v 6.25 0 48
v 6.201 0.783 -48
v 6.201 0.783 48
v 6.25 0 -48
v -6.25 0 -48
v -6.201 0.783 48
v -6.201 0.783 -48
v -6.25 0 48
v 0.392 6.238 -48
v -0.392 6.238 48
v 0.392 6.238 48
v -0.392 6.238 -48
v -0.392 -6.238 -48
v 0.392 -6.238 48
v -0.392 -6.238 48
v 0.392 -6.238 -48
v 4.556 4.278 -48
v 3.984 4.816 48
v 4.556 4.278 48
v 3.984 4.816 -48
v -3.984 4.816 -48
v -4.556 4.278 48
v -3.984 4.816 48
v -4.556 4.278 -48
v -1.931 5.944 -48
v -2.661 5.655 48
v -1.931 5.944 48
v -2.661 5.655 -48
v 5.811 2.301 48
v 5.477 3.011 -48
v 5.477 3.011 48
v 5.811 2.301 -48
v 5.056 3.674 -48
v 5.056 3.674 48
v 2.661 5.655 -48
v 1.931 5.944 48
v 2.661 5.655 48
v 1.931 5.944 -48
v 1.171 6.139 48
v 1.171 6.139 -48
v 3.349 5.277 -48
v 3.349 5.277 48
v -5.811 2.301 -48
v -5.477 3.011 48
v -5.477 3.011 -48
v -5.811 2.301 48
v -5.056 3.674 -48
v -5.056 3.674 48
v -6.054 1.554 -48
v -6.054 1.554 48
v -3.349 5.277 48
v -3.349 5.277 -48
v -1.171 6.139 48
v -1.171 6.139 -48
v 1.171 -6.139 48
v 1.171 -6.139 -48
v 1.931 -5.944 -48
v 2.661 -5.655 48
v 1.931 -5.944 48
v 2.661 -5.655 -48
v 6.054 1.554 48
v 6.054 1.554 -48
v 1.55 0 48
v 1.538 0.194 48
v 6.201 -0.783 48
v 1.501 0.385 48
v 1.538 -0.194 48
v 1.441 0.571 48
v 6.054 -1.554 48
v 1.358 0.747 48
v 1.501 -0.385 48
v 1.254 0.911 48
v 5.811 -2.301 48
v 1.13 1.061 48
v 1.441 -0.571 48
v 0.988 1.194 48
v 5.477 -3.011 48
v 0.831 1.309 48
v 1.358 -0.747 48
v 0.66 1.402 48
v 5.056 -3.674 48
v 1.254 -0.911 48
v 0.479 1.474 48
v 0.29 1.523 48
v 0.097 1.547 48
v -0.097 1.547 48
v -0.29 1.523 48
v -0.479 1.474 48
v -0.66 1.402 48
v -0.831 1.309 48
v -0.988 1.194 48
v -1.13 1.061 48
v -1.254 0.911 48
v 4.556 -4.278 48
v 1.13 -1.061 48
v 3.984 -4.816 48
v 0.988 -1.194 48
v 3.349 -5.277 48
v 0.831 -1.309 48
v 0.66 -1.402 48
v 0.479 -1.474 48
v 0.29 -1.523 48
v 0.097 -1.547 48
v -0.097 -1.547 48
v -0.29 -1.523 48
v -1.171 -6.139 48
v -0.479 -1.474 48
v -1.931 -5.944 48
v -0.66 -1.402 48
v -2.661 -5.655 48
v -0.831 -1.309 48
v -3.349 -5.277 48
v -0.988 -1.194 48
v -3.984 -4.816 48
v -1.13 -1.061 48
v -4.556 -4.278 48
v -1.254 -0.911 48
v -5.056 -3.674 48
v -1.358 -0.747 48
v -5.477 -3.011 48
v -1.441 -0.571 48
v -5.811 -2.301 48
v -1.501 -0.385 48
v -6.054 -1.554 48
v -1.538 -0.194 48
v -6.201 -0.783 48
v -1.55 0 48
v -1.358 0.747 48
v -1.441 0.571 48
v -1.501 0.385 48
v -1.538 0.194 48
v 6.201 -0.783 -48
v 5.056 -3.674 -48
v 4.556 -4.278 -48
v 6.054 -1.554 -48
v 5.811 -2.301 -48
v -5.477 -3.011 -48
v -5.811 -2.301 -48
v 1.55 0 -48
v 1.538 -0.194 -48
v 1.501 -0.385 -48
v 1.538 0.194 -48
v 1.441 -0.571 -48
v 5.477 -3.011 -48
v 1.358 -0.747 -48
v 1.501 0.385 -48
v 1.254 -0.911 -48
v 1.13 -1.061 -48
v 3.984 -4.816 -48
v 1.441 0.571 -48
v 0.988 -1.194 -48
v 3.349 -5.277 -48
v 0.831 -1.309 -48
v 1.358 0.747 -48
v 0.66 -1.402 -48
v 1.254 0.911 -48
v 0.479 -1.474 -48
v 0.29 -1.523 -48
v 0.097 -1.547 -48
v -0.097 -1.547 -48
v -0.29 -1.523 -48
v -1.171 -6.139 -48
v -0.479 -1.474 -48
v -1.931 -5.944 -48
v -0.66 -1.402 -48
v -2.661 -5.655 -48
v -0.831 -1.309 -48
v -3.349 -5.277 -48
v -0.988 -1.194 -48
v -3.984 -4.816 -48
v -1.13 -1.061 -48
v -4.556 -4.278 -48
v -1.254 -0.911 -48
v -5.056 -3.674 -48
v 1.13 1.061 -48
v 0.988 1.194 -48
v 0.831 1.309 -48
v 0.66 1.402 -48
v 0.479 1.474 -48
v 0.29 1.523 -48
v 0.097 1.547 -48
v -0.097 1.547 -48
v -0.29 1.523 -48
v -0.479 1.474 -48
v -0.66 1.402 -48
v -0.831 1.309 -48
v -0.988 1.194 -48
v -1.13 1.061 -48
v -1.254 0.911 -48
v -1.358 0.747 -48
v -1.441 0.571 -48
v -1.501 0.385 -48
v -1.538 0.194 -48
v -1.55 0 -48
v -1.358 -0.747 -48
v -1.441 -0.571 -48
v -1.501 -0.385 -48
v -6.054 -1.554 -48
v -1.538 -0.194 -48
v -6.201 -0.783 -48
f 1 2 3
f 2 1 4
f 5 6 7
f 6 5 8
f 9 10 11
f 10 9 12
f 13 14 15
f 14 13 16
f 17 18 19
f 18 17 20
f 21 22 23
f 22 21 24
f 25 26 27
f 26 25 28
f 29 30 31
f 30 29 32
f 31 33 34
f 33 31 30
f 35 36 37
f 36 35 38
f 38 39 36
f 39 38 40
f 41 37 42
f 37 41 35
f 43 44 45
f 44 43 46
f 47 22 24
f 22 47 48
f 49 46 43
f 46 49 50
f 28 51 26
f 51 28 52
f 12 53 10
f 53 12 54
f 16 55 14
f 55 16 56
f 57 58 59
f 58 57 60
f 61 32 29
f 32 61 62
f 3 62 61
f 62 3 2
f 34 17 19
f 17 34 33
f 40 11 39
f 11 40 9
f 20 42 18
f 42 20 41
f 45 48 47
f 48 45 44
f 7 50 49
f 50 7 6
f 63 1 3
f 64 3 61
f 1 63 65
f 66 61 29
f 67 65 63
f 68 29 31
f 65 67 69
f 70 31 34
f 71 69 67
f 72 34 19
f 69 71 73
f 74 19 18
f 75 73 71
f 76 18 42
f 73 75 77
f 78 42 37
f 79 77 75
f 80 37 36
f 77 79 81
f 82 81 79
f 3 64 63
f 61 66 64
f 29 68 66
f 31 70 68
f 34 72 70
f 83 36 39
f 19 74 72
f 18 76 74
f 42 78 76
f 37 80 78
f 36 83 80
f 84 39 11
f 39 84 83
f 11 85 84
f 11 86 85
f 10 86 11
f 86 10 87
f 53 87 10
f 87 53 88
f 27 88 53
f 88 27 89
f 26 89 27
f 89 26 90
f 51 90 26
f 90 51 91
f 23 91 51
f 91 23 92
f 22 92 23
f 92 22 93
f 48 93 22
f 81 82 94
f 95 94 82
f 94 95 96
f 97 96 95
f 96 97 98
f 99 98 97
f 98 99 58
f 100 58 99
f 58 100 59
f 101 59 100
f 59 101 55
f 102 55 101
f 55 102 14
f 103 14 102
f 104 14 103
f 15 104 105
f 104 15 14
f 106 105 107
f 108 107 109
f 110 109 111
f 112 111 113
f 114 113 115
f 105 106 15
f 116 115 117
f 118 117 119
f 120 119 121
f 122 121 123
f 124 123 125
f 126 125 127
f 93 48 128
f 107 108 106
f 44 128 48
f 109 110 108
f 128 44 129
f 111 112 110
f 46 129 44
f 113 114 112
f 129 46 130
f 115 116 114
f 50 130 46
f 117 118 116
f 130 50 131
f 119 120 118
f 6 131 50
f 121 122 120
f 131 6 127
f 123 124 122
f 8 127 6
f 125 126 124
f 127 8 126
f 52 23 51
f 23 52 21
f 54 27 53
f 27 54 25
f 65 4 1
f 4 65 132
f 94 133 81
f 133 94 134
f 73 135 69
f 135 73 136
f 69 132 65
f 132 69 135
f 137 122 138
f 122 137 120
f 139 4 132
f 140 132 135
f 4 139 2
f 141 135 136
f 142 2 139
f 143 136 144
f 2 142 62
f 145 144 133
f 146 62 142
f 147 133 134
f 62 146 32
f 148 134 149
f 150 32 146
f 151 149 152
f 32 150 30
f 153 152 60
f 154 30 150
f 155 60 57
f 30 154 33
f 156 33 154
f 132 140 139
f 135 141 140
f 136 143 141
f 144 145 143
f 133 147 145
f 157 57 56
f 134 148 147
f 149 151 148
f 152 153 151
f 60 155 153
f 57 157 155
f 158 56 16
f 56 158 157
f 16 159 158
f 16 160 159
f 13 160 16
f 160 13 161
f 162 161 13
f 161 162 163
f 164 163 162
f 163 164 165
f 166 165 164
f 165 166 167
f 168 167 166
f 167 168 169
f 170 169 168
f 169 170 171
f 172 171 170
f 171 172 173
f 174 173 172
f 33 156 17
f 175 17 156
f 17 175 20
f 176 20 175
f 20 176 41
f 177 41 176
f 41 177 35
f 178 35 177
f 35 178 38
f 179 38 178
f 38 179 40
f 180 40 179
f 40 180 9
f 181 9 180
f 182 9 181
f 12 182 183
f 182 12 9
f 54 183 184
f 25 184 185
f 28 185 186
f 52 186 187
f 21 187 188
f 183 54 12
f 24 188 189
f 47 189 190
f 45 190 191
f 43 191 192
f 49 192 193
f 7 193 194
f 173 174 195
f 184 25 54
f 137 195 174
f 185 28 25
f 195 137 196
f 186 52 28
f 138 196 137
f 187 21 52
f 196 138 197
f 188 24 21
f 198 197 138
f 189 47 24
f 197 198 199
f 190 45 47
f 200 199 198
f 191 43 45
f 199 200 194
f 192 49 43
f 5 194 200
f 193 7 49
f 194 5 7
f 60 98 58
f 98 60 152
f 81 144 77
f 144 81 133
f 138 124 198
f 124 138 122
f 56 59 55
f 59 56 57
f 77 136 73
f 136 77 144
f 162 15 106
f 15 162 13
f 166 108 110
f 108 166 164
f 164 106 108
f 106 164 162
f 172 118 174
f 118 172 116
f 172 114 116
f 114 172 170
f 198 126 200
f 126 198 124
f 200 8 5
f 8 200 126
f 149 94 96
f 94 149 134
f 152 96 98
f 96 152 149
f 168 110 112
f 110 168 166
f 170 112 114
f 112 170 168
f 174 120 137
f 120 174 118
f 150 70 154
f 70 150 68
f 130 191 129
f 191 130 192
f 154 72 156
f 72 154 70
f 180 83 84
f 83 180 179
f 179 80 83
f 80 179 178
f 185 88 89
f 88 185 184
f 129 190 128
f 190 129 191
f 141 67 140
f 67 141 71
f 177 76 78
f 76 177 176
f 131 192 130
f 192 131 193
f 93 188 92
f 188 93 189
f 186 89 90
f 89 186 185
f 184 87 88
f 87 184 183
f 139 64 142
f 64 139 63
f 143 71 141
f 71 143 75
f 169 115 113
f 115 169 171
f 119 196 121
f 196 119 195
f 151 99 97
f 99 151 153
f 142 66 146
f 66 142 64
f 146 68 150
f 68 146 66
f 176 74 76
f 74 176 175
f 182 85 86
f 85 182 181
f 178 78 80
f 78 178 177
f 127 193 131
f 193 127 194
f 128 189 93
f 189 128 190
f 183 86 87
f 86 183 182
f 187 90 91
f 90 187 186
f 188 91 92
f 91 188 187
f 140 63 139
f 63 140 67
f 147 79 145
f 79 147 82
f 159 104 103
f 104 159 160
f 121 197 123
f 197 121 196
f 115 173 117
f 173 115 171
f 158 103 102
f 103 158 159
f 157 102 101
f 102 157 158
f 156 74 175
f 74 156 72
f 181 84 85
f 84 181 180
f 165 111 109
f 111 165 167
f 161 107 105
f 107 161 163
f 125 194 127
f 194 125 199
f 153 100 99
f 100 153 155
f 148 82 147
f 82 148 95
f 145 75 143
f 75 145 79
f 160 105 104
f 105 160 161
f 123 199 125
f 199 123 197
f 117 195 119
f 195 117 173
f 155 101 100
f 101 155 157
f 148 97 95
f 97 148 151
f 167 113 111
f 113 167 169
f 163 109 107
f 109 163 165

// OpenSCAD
$fn = 50;


difference() {
	union() {
		translate(v = [0, 0, -48.0000000000]) {
			cylinder(h = 96, r = 6.2500000000);
		}
	}
	union() {
		translate(v = [0, 0, -100.0000000000]) {
			cylinder(h = 200, r = 1.5500000000);
		}
	}
}
